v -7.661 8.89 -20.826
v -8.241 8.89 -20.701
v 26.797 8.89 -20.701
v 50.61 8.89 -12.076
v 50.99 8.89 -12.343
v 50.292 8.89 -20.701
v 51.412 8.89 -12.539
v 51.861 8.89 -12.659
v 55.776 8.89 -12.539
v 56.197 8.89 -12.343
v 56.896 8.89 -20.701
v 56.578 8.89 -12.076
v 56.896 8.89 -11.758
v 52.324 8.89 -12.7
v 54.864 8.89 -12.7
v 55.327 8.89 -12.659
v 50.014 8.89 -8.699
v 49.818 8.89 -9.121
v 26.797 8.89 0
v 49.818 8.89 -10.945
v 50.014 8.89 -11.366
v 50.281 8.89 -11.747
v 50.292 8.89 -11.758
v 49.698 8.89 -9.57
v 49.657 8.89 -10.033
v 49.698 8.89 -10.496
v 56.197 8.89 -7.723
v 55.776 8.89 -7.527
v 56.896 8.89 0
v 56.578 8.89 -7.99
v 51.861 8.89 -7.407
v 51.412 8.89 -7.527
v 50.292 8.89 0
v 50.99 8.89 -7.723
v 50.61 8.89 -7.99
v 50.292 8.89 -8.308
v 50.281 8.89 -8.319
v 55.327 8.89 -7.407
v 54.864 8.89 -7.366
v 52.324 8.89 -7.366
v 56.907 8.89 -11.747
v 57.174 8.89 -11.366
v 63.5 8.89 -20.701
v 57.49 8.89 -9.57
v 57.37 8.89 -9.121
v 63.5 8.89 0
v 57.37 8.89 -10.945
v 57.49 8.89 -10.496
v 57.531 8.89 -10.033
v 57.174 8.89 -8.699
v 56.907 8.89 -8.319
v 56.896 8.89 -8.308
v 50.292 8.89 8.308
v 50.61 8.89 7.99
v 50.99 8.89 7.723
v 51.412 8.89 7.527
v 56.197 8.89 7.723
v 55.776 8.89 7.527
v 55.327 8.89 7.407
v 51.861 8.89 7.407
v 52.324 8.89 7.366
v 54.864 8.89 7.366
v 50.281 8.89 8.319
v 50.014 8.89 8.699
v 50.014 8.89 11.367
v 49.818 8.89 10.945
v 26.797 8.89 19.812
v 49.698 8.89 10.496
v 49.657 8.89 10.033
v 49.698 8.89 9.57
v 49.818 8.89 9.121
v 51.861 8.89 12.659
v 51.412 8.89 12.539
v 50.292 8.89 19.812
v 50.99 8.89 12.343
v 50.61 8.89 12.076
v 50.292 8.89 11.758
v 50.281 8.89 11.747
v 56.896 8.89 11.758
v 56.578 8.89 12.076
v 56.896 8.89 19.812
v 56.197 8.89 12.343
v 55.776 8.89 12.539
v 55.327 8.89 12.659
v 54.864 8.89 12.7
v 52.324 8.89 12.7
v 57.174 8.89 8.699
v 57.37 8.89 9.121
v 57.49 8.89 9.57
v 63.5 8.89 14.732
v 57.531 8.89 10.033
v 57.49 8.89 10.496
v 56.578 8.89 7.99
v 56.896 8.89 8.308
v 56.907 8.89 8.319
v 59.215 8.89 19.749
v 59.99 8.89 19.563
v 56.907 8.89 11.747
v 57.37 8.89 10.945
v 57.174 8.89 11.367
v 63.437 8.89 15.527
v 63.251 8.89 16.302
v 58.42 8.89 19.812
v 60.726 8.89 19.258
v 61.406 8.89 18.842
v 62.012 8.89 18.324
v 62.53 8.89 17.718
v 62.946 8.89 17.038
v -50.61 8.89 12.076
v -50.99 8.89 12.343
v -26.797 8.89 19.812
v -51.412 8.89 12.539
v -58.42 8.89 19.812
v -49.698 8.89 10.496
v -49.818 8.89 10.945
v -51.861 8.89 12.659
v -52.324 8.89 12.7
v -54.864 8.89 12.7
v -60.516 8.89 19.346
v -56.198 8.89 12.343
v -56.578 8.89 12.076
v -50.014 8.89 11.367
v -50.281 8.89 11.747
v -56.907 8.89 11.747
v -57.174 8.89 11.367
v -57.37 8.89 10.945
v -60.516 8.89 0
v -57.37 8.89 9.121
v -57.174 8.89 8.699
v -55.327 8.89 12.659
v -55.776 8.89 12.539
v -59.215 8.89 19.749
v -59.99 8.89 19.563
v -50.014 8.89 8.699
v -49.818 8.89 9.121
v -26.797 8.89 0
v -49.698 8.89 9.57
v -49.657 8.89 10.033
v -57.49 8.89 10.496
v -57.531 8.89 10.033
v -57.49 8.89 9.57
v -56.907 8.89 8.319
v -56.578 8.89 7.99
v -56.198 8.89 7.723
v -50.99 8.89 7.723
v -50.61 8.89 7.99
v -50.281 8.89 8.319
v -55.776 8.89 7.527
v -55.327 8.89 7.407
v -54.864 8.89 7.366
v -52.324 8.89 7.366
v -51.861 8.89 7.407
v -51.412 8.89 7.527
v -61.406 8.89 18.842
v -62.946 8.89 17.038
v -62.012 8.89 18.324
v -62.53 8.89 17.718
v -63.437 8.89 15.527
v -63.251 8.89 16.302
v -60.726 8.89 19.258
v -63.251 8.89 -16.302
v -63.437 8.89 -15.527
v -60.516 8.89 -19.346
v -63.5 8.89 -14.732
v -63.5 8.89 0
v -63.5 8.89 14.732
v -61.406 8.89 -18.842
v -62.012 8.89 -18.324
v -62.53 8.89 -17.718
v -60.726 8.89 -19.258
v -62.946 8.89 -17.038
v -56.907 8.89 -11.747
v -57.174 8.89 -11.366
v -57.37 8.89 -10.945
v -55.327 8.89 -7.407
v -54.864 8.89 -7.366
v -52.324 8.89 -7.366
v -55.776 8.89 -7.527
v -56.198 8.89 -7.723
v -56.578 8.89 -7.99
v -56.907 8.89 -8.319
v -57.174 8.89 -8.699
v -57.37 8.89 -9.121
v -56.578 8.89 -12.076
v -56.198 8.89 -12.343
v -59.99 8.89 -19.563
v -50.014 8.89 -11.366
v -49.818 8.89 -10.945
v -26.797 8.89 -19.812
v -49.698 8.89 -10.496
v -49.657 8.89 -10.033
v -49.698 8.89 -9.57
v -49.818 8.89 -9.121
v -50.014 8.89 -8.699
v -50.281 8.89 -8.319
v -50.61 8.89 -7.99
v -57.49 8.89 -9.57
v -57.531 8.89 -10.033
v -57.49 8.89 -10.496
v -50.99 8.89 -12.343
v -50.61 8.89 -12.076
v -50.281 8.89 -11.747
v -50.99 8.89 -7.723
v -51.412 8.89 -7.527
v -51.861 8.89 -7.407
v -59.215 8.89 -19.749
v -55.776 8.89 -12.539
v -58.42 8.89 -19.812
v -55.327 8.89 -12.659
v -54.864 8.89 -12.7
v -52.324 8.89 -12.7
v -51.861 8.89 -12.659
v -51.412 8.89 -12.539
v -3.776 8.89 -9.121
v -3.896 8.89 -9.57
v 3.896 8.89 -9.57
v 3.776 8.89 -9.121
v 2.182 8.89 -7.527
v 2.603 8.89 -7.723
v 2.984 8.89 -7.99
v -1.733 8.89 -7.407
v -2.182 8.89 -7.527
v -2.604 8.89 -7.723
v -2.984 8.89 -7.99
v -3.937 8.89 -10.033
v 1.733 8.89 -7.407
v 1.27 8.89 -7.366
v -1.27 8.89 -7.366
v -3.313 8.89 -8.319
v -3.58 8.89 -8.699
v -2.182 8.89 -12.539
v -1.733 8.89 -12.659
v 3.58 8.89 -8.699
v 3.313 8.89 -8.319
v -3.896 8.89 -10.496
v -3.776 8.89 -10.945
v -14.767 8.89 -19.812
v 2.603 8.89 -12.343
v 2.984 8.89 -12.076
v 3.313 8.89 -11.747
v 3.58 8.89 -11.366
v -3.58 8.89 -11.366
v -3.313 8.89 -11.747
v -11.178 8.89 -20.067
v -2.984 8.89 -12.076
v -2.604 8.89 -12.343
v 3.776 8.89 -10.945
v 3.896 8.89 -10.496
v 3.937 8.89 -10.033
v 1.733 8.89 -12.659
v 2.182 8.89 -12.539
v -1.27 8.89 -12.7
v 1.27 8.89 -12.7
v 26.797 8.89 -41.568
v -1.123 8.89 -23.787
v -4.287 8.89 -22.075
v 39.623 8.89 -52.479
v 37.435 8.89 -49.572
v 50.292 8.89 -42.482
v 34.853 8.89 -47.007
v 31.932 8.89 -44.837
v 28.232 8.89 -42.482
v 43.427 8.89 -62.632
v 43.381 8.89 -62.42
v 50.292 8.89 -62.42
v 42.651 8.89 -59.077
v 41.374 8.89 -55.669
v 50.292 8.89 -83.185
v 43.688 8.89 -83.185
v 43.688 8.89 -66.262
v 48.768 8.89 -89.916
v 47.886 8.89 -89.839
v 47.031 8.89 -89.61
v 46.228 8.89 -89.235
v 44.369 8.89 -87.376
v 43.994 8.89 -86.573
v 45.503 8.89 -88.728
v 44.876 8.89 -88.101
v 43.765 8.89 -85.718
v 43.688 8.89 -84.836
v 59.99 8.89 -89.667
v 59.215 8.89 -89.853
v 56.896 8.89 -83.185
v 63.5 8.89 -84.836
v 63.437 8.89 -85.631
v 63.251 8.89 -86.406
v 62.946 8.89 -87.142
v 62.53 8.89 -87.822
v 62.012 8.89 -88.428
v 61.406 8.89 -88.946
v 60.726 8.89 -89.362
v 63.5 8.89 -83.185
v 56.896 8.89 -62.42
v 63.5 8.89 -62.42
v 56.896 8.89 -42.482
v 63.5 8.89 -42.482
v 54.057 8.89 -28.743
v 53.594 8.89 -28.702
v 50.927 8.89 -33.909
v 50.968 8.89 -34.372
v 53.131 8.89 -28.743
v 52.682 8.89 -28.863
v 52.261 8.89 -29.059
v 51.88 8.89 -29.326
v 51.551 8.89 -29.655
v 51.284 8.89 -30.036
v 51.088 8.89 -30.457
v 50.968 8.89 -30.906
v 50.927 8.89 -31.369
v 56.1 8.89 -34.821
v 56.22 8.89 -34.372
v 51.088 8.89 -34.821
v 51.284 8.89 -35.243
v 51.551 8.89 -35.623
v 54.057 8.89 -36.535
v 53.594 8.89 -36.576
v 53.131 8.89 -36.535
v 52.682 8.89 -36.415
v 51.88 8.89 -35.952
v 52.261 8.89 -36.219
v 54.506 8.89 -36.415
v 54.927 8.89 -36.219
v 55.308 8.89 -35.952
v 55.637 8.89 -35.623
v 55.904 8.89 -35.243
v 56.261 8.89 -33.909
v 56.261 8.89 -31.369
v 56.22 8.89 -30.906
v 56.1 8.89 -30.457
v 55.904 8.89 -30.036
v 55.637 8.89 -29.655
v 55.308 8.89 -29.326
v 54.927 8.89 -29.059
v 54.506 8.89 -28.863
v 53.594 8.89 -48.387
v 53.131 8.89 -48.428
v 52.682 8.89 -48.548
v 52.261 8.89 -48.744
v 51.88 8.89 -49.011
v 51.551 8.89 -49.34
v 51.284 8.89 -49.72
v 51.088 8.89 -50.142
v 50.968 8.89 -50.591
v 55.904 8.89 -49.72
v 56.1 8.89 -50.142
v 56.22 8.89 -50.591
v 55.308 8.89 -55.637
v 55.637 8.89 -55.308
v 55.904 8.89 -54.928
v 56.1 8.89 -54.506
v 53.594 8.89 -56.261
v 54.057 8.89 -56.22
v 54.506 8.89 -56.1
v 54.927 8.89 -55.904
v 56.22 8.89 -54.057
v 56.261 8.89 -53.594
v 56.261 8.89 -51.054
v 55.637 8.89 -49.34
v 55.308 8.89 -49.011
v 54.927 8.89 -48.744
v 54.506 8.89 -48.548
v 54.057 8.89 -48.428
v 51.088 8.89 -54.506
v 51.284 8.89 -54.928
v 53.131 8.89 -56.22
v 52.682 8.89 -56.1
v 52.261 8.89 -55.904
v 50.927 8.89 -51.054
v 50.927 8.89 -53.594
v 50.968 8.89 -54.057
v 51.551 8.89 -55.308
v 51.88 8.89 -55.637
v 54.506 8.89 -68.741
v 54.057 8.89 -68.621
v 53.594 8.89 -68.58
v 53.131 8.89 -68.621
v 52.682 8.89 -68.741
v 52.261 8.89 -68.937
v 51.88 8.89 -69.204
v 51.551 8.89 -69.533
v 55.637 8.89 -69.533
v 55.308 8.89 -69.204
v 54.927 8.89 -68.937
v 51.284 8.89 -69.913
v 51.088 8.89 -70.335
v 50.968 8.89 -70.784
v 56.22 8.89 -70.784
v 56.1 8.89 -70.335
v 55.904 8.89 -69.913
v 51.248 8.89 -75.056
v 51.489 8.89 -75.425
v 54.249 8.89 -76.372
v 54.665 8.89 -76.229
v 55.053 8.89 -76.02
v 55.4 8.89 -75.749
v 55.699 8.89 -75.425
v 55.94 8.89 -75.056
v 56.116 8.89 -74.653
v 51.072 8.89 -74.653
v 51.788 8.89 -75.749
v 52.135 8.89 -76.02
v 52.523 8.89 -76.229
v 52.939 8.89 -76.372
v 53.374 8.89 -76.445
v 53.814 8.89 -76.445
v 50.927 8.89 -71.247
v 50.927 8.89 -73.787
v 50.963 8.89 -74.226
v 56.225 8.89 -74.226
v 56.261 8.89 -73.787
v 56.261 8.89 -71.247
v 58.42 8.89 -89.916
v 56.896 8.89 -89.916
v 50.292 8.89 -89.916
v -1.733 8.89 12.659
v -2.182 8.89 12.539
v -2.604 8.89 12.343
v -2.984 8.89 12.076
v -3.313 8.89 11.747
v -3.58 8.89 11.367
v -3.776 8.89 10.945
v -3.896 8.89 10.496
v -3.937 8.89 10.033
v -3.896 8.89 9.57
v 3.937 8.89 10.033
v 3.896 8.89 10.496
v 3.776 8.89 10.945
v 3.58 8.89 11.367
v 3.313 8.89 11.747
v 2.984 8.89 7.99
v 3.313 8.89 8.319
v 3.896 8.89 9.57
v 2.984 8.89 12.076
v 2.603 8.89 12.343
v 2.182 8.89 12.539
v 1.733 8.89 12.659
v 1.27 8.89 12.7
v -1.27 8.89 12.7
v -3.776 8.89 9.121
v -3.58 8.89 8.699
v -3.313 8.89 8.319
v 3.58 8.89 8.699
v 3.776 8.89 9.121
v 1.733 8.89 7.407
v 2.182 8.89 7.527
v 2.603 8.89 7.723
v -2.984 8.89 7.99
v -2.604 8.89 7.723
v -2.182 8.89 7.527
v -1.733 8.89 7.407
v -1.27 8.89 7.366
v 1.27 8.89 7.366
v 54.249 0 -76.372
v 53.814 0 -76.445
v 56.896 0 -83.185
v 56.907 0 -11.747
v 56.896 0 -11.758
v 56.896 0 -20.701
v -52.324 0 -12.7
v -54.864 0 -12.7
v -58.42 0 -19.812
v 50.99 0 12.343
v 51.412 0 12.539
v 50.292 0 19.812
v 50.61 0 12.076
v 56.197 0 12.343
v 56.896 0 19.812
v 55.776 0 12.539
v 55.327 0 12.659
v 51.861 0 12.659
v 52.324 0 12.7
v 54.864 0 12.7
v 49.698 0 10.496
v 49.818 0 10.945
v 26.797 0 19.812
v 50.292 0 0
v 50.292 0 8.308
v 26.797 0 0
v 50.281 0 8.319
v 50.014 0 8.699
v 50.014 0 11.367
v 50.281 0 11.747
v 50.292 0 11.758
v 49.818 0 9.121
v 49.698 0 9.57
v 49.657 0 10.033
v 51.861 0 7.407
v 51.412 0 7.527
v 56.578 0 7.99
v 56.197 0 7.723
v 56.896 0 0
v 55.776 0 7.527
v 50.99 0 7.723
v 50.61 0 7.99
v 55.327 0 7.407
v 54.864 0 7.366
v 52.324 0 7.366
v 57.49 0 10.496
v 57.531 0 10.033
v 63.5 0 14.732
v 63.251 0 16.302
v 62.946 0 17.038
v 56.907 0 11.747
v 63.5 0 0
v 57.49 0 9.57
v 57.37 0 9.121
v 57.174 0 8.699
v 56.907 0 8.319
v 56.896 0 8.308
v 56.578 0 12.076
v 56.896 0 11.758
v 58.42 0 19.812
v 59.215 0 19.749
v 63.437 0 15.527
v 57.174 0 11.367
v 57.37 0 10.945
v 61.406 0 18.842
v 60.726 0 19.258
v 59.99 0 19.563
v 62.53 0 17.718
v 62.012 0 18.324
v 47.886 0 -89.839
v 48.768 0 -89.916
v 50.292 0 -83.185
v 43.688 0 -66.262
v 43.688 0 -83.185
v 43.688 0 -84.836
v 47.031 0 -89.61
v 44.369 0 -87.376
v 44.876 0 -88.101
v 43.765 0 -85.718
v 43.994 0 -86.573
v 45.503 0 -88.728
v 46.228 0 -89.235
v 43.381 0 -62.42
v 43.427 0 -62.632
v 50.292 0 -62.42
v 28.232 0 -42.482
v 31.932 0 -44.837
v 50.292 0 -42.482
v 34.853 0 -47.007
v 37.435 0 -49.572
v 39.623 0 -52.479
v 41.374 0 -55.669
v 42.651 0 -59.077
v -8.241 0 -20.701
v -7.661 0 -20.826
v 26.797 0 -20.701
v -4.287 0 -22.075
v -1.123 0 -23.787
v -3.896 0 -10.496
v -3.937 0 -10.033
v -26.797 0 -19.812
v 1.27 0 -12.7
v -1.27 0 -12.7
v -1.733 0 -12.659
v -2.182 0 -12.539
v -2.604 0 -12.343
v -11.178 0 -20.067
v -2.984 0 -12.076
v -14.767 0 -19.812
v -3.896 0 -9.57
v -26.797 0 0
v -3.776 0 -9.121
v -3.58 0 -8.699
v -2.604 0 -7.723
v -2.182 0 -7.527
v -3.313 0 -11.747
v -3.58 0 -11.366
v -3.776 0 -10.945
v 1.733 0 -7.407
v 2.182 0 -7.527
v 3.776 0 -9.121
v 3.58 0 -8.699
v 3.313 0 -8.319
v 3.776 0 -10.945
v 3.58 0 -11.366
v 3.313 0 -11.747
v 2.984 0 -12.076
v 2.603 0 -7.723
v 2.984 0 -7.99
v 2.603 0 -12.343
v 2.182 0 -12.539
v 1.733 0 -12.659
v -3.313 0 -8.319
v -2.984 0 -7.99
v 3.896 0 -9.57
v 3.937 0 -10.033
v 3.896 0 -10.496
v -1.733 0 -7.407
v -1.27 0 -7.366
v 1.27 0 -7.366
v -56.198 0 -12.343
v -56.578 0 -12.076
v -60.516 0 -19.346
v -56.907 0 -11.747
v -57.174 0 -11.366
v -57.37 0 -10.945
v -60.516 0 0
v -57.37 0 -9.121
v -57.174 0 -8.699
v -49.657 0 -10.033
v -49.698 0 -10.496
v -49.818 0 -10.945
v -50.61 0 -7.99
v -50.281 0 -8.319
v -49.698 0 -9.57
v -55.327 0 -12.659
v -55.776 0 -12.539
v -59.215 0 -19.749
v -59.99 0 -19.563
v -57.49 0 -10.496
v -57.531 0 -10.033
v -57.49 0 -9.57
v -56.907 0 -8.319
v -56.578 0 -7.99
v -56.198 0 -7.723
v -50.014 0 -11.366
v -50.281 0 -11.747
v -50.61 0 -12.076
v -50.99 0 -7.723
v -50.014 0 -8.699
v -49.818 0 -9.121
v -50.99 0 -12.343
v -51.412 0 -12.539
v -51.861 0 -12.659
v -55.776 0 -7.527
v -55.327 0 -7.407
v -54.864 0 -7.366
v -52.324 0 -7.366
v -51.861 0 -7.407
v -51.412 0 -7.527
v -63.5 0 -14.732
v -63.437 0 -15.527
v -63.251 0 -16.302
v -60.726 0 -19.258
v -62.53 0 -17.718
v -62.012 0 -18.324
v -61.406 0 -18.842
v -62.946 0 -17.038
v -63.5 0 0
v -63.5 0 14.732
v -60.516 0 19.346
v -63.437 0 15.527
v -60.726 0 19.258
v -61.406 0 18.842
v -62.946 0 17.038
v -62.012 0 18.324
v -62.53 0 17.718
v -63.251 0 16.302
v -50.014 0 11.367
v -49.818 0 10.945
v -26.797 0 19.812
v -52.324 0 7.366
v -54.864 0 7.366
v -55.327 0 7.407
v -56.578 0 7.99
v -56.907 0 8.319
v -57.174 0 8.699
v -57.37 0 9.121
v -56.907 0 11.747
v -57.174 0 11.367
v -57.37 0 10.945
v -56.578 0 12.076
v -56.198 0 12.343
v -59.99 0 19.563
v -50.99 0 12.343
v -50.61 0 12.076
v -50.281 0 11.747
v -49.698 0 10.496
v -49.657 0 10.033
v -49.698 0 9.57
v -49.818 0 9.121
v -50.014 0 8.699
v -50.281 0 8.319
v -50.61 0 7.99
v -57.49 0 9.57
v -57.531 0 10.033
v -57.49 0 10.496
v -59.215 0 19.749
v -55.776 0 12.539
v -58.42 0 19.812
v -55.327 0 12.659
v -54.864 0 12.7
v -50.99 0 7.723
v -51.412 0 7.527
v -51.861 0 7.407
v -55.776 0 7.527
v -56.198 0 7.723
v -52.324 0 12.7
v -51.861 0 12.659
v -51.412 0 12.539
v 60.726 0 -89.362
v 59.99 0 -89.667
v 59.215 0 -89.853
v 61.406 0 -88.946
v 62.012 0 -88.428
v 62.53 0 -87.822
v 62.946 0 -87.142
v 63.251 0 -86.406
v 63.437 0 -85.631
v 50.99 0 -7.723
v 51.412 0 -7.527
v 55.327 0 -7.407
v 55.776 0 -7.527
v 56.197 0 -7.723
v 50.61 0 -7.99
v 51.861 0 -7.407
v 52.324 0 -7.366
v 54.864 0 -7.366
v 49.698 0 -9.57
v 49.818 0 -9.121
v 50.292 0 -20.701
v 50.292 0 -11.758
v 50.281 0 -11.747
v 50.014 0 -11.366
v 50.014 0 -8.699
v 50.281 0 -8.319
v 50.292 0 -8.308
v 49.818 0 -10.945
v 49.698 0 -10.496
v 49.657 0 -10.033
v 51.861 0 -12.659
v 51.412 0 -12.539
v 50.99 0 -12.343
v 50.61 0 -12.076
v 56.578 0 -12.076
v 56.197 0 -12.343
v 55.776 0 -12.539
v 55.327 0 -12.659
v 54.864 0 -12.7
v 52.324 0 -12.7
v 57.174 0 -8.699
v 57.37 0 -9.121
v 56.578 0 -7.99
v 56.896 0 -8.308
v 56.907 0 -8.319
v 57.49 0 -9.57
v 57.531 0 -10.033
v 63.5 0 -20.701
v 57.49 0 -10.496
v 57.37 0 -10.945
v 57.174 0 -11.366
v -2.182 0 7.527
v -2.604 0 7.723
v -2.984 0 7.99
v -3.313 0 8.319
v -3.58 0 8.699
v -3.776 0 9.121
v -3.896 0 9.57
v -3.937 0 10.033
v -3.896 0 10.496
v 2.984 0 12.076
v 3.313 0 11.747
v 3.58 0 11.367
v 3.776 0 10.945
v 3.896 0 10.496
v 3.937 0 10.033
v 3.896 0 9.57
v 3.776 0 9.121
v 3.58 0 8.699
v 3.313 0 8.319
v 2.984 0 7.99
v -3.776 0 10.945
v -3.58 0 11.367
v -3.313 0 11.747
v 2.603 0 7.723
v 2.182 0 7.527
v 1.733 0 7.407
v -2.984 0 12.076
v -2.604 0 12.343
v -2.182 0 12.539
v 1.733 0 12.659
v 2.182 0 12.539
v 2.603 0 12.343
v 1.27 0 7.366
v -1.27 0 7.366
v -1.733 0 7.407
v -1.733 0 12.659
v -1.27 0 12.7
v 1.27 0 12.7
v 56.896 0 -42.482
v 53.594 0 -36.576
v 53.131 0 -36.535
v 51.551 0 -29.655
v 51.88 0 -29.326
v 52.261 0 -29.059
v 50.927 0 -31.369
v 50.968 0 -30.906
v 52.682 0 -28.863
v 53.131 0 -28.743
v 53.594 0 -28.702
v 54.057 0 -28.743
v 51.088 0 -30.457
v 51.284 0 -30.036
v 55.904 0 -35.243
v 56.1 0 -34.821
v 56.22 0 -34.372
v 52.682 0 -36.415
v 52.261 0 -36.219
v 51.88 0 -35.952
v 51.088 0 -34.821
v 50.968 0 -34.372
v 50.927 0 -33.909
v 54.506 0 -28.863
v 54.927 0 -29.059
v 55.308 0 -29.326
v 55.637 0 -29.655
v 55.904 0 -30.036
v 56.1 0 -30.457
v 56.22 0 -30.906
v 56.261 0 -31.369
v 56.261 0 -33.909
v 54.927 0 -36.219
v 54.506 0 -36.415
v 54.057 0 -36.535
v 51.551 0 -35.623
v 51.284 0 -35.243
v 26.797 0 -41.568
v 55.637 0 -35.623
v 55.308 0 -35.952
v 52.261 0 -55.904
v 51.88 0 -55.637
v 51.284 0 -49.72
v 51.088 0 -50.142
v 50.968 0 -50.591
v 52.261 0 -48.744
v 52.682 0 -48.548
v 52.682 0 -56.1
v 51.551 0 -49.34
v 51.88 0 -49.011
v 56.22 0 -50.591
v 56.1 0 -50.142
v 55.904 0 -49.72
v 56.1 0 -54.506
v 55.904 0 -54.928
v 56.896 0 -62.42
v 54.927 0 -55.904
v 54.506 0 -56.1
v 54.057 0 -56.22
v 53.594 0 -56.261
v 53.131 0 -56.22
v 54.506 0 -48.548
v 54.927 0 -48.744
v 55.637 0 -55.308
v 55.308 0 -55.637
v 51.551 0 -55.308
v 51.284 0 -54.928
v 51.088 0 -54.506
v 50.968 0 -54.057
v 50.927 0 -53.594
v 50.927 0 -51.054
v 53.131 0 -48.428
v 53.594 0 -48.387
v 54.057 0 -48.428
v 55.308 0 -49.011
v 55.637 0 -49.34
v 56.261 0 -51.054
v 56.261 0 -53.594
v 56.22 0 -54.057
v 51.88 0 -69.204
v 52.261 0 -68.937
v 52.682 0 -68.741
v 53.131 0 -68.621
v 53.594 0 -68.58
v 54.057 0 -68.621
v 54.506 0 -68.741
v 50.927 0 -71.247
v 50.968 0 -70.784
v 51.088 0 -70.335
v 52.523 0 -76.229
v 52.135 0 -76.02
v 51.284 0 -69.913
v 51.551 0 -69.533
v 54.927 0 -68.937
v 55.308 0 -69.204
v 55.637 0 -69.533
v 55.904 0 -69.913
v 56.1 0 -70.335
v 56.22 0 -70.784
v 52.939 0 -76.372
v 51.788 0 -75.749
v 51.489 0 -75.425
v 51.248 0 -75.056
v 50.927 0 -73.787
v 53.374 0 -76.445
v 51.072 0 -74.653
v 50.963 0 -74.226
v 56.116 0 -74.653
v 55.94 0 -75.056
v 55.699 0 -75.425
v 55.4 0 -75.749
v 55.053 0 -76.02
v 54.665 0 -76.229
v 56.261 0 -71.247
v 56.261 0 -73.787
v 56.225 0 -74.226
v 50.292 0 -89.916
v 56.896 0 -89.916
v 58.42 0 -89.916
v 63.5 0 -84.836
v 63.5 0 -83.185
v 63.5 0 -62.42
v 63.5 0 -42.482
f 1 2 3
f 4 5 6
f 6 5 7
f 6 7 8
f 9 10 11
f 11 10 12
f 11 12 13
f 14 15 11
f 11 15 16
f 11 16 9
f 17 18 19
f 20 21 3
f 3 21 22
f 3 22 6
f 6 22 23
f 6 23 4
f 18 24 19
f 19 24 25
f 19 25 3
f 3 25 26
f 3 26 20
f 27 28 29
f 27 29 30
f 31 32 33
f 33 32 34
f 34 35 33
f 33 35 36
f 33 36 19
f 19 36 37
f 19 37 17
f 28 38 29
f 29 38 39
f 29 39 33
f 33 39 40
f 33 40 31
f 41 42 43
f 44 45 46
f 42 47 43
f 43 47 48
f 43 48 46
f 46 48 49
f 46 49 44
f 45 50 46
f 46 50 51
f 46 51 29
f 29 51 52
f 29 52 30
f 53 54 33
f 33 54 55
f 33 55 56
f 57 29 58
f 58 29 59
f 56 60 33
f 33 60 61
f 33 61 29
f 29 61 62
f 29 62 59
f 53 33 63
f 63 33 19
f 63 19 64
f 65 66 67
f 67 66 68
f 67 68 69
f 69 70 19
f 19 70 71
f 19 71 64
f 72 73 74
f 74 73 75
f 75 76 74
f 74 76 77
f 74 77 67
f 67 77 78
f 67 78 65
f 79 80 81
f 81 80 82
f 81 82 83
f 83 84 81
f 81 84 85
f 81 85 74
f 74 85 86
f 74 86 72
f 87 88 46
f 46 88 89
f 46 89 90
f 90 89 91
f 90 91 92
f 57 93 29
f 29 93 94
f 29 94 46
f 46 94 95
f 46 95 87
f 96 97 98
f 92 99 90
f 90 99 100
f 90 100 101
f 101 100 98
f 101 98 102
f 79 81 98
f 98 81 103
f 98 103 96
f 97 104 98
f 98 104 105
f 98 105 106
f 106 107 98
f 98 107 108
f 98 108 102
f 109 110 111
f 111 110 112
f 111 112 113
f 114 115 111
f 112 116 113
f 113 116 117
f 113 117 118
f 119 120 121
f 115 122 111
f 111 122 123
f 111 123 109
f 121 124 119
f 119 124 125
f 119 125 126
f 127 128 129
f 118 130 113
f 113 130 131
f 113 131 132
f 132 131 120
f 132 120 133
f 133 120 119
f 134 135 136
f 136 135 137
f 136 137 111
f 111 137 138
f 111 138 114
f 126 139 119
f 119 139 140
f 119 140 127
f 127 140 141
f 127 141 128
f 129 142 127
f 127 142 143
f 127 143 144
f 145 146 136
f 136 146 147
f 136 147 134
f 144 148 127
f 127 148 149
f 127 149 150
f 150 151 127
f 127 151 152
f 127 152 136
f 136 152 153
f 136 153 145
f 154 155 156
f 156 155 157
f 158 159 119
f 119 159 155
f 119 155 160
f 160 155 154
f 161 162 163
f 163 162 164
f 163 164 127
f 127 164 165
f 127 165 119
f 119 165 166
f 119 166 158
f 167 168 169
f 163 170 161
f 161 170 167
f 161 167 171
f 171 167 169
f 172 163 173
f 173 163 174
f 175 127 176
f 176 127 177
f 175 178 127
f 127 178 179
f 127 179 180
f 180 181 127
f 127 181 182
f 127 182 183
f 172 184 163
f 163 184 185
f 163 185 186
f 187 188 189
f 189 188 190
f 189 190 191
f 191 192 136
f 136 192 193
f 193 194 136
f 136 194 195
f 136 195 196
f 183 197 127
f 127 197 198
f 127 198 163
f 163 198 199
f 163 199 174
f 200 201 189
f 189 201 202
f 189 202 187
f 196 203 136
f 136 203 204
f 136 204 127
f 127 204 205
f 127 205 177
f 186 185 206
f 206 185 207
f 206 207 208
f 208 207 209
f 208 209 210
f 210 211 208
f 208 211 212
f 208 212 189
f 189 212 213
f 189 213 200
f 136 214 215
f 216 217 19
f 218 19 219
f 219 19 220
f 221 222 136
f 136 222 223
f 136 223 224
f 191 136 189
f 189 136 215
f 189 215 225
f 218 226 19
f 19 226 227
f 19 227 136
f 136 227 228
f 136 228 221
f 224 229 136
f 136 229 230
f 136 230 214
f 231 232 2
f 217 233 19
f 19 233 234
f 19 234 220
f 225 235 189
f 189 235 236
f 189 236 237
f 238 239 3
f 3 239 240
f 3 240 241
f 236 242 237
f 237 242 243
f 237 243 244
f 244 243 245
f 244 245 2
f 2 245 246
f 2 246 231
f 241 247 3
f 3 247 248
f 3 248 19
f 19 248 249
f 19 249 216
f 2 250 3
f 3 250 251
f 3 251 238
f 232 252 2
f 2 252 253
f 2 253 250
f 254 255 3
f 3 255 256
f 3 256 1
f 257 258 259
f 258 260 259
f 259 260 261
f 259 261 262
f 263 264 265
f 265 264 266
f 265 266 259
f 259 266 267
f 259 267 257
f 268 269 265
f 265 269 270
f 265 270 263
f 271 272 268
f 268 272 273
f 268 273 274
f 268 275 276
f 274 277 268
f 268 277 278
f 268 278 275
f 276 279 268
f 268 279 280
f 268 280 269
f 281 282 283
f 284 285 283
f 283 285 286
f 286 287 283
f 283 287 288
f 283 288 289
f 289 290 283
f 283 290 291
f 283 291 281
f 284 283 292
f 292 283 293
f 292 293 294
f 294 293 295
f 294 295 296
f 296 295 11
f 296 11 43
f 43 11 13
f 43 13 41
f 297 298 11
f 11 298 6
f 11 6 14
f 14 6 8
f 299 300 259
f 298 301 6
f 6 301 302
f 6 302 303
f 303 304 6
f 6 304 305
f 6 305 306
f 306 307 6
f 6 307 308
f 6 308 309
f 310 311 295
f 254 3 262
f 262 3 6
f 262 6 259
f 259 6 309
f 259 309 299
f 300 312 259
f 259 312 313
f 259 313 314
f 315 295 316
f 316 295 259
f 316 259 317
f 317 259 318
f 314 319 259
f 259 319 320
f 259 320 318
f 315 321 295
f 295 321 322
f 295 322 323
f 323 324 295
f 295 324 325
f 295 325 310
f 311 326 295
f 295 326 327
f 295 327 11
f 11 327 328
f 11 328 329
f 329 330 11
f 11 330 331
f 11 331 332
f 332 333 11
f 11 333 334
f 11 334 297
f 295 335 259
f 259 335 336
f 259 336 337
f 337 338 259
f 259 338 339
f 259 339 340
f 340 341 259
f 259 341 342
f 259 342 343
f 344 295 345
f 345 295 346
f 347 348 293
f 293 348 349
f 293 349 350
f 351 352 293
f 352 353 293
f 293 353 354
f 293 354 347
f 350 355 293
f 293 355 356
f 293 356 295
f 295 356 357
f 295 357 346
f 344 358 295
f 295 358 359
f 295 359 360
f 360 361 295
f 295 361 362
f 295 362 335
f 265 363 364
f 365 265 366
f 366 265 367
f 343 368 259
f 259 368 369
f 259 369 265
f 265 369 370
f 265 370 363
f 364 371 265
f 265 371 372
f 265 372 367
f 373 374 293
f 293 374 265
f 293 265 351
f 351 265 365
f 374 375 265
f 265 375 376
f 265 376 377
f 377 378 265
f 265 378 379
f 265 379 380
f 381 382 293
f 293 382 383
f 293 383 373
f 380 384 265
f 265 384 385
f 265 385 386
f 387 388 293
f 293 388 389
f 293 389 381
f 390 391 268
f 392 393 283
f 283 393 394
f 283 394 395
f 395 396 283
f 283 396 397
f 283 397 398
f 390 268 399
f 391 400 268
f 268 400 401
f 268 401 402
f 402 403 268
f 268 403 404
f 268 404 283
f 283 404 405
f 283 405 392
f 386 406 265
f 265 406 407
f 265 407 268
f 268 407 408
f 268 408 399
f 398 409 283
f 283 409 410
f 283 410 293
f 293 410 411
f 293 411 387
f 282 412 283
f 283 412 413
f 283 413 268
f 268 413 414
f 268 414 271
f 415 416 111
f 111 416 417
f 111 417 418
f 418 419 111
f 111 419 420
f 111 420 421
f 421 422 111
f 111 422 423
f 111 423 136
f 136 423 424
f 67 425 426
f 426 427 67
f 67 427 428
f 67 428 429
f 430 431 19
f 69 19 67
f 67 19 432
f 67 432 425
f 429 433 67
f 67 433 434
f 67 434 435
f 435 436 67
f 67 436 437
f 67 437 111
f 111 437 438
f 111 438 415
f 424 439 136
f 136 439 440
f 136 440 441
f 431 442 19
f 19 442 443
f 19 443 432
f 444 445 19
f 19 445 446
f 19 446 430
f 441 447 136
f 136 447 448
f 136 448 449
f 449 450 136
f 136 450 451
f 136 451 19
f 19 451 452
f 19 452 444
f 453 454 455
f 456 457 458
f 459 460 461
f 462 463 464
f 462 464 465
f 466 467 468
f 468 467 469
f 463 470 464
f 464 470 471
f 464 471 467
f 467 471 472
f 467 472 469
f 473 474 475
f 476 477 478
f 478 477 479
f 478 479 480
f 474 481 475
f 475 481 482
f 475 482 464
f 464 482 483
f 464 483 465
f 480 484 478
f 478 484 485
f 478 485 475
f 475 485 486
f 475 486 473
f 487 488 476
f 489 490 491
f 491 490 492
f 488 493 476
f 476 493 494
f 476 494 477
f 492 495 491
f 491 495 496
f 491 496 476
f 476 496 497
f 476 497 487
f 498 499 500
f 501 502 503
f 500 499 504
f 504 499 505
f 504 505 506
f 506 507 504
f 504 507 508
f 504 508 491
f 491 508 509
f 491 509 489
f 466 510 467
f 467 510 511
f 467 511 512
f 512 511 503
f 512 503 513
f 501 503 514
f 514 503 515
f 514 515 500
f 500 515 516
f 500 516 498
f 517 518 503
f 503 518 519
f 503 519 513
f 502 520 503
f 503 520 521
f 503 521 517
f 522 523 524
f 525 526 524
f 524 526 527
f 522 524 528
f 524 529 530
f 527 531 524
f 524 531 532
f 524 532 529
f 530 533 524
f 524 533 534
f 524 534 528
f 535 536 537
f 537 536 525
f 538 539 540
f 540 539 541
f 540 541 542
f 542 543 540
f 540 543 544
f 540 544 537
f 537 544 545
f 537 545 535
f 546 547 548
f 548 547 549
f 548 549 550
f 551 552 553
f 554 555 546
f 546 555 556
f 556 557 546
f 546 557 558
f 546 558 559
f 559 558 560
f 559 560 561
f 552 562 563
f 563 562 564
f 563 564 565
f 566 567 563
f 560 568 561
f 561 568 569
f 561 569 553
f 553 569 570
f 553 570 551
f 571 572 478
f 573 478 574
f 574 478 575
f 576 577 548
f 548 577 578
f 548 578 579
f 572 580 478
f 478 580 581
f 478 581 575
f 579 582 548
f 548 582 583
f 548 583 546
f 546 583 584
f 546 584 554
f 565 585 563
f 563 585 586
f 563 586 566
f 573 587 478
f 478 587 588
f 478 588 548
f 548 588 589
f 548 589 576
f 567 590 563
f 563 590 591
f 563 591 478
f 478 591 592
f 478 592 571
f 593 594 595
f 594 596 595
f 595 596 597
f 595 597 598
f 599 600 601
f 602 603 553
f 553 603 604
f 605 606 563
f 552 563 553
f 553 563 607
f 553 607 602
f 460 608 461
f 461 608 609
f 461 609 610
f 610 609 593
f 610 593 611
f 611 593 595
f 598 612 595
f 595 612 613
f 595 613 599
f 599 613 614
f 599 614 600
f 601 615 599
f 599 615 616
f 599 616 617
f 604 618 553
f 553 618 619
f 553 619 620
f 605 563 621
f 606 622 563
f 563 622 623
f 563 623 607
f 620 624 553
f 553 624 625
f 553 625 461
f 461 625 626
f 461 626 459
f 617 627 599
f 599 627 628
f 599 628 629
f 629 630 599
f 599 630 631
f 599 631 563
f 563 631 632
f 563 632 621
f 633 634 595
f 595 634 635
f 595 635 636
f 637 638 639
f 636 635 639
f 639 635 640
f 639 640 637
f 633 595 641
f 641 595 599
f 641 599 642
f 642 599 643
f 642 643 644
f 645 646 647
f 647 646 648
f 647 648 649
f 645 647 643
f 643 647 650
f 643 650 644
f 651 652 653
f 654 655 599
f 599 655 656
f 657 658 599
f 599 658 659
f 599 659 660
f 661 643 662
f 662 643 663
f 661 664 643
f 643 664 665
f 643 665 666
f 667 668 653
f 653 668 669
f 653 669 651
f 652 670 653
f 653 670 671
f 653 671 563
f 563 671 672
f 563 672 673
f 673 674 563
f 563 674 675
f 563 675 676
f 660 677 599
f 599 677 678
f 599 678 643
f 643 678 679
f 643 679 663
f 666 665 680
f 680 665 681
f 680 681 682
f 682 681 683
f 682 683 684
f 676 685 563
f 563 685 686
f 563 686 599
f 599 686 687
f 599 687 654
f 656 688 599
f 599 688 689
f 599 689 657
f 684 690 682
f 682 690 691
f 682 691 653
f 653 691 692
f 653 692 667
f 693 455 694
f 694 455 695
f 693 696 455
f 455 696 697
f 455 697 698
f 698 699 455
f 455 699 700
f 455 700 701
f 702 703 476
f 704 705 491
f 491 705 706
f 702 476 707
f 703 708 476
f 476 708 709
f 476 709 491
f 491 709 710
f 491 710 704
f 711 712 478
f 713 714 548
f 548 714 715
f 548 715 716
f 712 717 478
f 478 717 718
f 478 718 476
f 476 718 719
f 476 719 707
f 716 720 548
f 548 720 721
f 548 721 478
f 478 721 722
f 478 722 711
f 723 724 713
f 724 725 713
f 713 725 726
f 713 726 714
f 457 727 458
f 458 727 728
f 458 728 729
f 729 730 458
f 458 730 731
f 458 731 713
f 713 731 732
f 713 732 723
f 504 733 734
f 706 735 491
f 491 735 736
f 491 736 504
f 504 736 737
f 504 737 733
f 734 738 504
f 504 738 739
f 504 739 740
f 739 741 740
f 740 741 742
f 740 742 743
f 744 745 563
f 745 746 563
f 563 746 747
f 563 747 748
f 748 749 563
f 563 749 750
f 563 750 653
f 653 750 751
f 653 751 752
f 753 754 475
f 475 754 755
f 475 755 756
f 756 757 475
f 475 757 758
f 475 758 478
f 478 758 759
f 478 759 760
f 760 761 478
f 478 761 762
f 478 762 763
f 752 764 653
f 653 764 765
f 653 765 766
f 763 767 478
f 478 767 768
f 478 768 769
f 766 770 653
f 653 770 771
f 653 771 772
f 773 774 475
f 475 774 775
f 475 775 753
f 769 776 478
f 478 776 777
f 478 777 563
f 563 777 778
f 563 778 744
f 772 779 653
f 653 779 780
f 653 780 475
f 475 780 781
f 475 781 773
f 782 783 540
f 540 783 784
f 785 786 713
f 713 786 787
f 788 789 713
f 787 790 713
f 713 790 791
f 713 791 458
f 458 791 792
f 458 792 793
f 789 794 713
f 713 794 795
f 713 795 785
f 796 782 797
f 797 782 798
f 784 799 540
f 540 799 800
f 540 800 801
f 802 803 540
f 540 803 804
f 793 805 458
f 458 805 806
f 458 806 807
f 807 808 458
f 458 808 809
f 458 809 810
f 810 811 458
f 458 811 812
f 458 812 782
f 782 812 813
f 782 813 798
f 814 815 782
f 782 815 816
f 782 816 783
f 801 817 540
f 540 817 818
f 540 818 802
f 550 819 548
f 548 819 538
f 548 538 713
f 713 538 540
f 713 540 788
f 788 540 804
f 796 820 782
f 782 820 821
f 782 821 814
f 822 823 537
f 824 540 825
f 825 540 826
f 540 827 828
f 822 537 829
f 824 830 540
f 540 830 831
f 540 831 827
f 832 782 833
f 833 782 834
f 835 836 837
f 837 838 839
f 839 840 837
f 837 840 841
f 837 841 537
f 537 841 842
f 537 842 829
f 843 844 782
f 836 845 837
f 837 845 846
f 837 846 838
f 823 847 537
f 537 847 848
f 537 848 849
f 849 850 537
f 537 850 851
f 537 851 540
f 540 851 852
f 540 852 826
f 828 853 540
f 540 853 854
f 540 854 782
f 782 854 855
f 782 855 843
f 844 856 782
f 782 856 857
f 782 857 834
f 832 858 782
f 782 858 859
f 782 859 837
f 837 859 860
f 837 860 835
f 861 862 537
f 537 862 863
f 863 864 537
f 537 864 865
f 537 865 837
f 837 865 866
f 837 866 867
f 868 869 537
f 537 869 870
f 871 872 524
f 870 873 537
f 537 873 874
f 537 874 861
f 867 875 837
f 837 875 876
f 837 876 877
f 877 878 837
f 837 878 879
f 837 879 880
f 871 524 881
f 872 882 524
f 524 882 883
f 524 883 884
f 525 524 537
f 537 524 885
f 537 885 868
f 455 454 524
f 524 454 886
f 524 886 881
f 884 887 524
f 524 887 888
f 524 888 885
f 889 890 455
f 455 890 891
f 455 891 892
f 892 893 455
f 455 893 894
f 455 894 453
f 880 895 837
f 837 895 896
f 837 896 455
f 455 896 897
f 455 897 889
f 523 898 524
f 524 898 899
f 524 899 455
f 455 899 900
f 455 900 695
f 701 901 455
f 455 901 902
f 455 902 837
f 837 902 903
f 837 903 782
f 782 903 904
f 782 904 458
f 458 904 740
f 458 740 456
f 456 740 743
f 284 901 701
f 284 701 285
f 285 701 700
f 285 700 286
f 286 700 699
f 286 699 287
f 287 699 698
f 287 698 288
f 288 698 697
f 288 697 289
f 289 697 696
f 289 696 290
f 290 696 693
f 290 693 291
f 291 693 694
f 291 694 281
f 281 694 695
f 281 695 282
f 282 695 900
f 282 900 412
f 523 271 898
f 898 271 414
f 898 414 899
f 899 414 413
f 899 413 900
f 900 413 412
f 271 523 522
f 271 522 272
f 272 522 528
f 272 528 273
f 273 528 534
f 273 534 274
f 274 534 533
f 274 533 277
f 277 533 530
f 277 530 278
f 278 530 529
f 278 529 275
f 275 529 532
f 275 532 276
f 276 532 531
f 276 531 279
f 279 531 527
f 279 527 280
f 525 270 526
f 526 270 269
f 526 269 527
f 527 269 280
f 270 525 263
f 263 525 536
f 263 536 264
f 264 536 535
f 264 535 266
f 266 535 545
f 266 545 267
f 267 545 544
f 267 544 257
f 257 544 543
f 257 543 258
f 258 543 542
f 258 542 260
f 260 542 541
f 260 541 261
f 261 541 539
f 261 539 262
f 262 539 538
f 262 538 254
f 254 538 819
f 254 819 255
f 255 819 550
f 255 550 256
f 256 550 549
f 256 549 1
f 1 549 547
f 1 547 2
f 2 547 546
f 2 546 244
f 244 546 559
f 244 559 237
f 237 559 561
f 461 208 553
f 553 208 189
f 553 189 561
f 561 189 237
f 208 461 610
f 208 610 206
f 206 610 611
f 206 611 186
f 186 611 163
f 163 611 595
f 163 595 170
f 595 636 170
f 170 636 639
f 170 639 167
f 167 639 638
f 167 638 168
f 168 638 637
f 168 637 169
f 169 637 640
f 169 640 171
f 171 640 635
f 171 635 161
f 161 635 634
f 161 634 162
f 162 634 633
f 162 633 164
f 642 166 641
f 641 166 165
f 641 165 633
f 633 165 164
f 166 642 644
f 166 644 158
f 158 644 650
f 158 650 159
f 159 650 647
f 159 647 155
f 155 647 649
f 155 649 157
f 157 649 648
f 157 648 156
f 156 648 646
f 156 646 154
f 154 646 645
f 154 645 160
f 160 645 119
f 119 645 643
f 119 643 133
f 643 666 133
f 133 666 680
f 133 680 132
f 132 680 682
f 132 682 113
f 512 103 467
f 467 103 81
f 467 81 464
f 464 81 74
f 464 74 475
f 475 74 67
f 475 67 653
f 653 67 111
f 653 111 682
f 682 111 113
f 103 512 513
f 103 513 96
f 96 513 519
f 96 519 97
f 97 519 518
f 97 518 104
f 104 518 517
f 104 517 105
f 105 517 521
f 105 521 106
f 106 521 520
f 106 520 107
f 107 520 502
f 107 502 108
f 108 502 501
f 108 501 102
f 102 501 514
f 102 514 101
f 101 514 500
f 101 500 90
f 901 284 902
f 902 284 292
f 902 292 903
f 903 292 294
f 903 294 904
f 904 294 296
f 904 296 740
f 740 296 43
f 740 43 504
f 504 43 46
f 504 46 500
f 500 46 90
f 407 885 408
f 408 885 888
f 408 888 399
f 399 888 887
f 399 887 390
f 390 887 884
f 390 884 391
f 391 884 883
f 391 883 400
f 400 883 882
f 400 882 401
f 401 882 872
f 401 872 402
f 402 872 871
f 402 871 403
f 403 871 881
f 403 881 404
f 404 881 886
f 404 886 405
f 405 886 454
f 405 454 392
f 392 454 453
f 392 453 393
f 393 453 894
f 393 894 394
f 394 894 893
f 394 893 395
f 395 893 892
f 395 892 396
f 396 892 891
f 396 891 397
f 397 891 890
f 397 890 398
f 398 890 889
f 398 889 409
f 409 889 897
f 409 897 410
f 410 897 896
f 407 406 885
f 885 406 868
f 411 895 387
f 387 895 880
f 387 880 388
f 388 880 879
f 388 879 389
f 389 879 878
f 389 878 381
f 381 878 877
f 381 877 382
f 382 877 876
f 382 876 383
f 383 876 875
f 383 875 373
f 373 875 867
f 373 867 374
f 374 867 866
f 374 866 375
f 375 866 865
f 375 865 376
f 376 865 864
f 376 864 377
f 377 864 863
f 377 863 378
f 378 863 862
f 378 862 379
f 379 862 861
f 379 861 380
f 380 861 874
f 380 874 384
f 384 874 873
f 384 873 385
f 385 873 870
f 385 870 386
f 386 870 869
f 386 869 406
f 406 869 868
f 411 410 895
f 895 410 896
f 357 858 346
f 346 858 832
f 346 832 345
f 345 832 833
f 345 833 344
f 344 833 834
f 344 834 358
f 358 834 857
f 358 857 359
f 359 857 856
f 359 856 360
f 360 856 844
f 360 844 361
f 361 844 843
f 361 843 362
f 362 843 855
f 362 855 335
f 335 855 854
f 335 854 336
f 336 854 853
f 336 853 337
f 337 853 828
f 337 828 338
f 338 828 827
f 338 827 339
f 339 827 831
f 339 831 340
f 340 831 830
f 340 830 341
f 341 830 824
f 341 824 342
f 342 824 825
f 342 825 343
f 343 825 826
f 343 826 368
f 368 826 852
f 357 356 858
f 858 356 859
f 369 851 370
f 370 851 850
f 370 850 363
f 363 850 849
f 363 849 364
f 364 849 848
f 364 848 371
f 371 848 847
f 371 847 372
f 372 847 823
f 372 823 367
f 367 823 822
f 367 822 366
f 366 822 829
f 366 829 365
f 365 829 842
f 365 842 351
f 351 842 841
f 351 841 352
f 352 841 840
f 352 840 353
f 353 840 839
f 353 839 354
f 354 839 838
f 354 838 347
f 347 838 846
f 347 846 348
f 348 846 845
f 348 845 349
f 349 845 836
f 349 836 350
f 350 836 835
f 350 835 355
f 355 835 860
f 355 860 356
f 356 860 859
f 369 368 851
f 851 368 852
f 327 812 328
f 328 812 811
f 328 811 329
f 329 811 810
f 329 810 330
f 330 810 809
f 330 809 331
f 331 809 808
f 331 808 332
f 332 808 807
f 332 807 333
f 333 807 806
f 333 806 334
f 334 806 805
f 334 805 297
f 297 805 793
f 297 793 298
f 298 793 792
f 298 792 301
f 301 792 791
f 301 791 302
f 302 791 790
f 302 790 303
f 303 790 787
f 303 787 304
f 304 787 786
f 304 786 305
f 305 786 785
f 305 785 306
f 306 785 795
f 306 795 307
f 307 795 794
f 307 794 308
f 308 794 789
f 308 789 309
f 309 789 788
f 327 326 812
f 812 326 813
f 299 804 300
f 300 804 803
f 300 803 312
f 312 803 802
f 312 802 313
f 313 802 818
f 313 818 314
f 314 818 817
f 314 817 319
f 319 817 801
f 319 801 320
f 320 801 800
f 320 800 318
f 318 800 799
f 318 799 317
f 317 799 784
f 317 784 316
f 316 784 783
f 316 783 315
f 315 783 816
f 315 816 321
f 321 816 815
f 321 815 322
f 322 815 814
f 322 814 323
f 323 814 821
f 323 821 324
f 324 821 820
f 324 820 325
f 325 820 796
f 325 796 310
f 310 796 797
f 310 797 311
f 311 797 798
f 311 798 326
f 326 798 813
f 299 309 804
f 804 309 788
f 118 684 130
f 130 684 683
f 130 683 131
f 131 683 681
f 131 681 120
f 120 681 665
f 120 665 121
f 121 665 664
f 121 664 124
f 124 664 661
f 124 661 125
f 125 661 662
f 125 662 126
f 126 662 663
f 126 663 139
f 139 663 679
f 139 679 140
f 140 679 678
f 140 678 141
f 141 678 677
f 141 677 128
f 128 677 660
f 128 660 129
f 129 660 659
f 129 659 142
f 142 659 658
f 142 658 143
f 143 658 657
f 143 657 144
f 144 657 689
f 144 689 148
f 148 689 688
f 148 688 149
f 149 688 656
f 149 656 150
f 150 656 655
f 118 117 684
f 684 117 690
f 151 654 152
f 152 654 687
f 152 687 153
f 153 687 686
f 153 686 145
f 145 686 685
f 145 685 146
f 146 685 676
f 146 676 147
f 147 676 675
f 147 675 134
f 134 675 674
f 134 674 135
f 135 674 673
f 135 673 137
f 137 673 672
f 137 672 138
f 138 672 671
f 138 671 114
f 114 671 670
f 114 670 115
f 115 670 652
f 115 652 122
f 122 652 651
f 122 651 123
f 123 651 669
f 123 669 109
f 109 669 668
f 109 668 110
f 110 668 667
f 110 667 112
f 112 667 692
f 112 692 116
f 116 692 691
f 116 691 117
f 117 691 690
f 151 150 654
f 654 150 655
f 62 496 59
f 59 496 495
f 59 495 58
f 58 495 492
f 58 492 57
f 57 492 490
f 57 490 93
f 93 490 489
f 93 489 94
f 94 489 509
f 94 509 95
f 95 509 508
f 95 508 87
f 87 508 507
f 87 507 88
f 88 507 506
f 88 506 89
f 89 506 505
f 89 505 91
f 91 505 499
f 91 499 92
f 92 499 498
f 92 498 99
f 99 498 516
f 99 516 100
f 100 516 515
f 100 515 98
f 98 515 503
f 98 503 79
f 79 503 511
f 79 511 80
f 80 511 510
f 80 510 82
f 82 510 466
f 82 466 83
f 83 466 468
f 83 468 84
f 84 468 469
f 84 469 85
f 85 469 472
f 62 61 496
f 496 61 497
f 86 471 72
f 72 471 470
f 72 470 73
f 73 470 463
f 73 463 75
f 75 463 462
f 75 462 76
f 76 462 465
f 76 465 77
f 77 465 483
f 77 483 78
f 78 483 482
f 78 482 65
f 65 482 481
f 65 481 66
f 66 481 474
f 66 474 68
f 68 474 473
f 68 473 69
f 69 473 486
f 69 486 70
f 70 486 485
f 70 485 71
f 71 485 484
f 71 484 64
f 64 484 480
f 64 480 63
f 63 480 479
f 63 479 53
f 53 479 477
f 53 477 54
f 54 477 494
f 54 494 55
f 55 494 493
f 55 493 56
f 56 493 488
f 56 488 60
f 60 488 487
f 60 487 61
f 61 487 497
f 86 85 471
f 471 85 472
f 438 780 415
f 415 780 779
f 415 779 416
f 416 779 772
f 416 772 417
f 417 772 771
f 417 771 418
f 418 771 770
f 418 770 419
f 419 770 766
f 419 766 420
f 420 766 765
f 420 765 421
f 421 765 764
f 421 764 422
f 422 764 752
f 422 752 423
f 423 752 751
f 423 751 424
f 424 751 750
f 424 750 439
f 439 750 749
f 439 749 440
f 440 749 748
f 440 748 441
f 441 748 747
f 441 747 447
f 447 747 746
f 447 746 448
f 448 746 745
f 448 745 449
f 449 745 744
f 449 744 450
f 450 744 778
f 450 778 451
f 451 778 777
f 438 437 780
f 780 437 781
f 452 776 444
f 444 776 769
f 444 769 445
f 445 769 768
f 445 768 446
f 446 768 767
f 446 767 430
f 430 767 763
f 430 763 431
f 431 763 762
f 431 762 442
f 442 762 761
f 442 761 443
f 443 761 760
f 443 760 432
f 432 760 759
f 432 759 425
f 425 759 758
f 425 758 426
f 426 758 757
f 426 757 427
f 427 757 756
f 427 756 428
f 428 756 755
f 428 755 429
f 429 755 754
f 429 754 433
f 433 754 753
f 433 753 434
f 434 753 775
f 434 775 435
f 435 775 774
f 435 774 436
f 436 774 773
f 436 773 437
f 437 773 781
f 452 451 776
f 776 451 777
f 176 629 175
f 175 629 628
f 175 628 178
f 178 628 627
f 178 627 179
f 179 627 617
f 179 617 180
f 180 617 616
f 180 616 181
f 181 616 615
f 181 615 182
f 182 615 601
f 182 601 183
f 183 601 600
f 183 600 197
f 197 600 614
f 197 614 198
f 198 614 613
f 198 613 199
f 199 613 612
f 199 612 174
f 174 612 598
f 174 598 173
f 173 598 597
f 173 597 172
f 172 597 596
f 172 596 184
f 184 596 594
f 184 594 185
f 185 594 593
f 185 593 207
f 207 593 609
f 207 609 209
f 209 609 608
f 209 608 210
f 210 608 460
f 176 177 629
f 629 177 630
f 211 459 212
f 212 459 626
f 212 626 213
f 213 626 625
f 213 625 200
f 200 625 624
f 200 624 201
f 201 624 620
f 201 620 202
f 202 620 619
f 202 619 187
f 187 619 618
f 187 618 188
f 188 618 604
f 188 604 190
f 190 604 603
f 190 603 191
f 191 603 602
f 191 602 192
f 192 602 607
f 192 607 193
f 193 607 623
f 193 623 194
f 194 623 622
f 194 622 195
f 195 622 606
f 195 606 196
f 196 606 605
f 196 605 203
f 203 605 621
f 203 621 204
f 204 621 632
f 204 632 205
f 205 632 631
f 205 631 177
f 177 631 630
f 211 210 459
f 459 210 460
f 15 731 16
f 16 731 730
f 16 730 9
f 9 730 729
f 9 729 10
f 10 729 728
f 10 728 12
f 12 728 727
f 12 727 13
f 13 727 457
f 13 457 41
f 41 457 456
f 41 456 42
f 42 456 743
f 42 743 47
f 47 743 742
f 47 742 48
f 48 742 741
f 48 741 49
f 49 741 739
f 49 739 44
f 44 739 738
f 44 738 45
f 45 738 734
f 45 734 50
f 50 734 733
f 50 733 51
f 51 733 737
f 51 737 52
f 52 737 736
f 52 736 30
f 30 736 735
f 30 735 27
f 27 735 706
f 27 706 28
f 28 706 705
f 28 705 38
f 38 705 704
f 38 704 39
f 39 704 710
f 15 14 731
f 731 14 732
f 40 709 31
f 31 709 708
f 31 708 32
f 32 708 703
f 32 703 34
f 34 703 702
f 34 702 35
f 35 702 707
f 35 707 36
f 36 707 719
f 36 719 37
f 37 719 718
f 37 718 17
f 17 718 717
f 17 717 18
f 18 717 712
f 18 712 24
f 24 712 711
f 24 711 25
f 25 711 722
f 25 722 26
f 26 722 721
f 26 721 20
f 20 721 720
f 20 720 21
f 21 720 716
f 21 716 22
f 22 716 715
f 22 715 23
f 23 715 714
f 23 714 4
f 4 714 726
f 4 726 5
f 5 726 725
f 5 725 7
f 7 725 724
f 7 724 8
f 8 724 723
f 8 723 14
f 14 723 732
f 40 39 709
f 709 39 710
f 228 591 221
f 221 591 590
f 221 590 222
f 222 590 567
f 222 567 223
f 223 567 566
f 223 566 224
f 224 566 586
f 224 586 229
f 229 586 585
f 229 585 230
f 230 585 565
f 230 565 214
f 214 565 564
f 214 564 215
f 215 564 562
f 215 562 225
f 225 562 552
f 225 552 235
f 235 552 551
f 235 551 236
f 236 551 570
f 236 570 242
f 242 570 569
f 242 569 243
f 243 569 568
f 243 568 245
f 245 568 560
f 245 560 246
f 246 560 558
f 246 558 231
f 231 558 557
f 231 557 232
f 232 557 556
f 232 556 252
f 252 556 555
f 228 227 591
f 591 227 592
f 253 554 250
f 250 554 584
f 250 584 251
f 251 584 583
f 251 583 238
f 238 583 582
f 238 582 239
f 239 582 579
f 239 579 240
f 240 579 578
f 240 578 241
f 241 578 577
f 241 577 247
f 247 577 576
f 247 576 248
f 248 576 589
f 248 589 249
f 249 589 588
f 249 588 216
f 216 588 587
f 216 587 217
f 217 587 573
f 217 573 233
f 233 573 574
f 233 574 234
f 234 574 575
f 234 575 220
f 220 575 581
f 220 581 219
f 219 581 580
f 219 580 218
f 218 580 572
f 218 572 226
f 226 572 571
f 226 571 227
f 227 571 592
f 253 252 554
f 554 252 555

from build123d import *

# Parameters (mm, degrees)
BOSS_EXTRUDE2_DEPTH = 8.89


with BuildPart() as part:
    # Sketch1 → Boss-Extrude2 (new body)
    with BuildSketch(Plane(origin=(0, 0, 0), x_dir=(1, 0, 0), z_dir=(0, 1, 0))):
        with BuildLine():
            Line((58.42, -19.812), (-58.42, -19.812))
            ThreePointArc((-58.42, -19.812), (-62.012102448, -18.324102448), (-63.5, -14.732))
            Line((-63.5, -14.732), (-63.5, 14.732))
            ThreePointArc((-63.5, 14.732), (-62.012102448, 18.324102448), (-58.42, 19.812))
            Line((-58.42, 19.812), (-14.766931822, 19.812))
            ThreePointArc((-14.766931822, 19.812), (-7.661480975, 20.826090785), (-1.123398019, 23.787388326))
            Line((-1.123398019, 23.787388326), (31.931533802, 44.837295158))
            ThreePointArc((31.931533802, 44.837295158), (40.555754249, 54.042777538), (43.688, 66.261906832))
            Line((43.688, 66.261906832), (43.688, 84.836))
            ThreePointArc((43.688, 84.836), (45.175897552, 88.428102448), (48.768, 89.916))
            Line((48.768, 89.916), (58.42, 89.916))
            ThreePointArc((58.42, 89.916), (62.012102448, 88.428102448), (63.5, 84.836))
            Line((63.5, 84.836), (63.5, 14.732))
            Line((63.5, 14.732), (63.5, -14.732))
            ThreePointArc((63.5, -14.732), (62.012102448, -18.324102448), (58.42, -19.812))
        make_face()
        with BuildLine():
            Line((56.261, 73.787), (56.261, 71.247))
            ThreePointArc((56.261, 71.247), (53.594, 68.58), (50.927, 71.247))
            Line((50.927, 71.247), (50.927, 73.787))
            ThreePointArc((50.927, 73.787), (53.594, 76.454), (56.261, 73.787))
        make_face(mode=Mode.SUBTRACT)
        with BuildLine():
            Line((50.927, 51.054), (50.927, 53.594))
            ThreePointArc((50.927, 53.594), (53.594, 56.261), (56.261, 53.594))
            Line((56.261, 53.594), (56.261, 51.054))
            ThreePointArc((56.261, 51.054), (53.594, 48.387), (50.927, 51.054))
        make_face(mode=Mode.SUBTRACT)
        with BuildLine():
            Line((50.927, 31.369), (50.927, 33.909))
            ThreePointArc((50.927, 33.909), (53.594, 36.576), (56.261, 33.909))
            Line((56.261, 33.909), (56.261, 31.369))
            ThreePointArc((56.261, 31.369), (53.594, 28.702), (50.927, 31.369))
        make_face(mode=Mode.SUBTRACT)
        with BuildLine():
            Line((-54.864, -7.366), (-52.324, -7.366))
            ThreePointArc((-52.324, -7.366), (-49.657, -10.033), (-52.324, -12.7))
            Line((-52.324, -12.7), (-54.864, -12.7))
            ThreePointArc((-54.864, -12.7), (-57.531, -10.033), (-54.864, -7.366))
        make_face(mode=Mode.SUBTRACT)
        with BuildLine():
            Line((54.864, -12.7), (52.324, -12.7))
            ThreePointArc((52.324, -12.7), (49.657, -10.033), (52.324, -7.366))
            Line((52.324, -7.366), (54.864, -7.366))
            ThreePointArc((54.864, -7.366), (57.531, -10.033), (54.864, -12.7))
        make_face(mode=Mode.SUBTRACT)
        with BuildLine():
            Line((-1.27, -7.366), (1.27, -7.366))
            ThreePointArc((1.27, -7.366), (3.937, -10.033), (1.27, -12.7))
            Line((1.27, -12.7), (-1.27, -12.7))
            ThreePointArc((-1.27, -12.7), (-3.937, -10.033), (-1.27, -7.366))
        make_face(mode=Mode.SUBTRACT)
        with BuildLine():
            Line((-54.864, 7.366), (-52.324, 7.366))
            ThreePointArc((-52.324, 7.366), (-49.657, 10.033), (-52.324, 12.7))
            Line((-52.324, 12.7), (-54.864, 12.7))
            ThreePointArc((-54.864, 12.7), (-57.531, 10.033), (-54.864, 7.366))
        make_face(mode=Mode.SUBTRACT)
        with BuildLine():
            Line((54.864, 12.7), (52.324, 12.7))
            ThreePointArc((52.324, 12.7), (49.657, 10.033), (52.324, 7.366))
            Line((52.324, 7.366), (54.864, 7.366))
            ThreePointArc((54.864, 7.366), (57.531, 10.033), (54.864, 12.7))
        make_face(mode=Mode.SUBTRACT)
        with BuildLine():
            Line((-1.27, 7.366), (1.27, 7.366))
            ThreePointArc((1.27, 7.366), (3.937, 10.033), (1.27, 12.7))
            Line((1.27, 12.7), (-1.27, 12.7))
            ThreePointArc((-1.27, 12.7), (-3.937, 10.033), (-1.27, 7.366))
        make_face(mode=Mode.SUBTRACT)
    extrude(amount=BOSS_EXTRUDE2_DEPTH)


solid = part.part
